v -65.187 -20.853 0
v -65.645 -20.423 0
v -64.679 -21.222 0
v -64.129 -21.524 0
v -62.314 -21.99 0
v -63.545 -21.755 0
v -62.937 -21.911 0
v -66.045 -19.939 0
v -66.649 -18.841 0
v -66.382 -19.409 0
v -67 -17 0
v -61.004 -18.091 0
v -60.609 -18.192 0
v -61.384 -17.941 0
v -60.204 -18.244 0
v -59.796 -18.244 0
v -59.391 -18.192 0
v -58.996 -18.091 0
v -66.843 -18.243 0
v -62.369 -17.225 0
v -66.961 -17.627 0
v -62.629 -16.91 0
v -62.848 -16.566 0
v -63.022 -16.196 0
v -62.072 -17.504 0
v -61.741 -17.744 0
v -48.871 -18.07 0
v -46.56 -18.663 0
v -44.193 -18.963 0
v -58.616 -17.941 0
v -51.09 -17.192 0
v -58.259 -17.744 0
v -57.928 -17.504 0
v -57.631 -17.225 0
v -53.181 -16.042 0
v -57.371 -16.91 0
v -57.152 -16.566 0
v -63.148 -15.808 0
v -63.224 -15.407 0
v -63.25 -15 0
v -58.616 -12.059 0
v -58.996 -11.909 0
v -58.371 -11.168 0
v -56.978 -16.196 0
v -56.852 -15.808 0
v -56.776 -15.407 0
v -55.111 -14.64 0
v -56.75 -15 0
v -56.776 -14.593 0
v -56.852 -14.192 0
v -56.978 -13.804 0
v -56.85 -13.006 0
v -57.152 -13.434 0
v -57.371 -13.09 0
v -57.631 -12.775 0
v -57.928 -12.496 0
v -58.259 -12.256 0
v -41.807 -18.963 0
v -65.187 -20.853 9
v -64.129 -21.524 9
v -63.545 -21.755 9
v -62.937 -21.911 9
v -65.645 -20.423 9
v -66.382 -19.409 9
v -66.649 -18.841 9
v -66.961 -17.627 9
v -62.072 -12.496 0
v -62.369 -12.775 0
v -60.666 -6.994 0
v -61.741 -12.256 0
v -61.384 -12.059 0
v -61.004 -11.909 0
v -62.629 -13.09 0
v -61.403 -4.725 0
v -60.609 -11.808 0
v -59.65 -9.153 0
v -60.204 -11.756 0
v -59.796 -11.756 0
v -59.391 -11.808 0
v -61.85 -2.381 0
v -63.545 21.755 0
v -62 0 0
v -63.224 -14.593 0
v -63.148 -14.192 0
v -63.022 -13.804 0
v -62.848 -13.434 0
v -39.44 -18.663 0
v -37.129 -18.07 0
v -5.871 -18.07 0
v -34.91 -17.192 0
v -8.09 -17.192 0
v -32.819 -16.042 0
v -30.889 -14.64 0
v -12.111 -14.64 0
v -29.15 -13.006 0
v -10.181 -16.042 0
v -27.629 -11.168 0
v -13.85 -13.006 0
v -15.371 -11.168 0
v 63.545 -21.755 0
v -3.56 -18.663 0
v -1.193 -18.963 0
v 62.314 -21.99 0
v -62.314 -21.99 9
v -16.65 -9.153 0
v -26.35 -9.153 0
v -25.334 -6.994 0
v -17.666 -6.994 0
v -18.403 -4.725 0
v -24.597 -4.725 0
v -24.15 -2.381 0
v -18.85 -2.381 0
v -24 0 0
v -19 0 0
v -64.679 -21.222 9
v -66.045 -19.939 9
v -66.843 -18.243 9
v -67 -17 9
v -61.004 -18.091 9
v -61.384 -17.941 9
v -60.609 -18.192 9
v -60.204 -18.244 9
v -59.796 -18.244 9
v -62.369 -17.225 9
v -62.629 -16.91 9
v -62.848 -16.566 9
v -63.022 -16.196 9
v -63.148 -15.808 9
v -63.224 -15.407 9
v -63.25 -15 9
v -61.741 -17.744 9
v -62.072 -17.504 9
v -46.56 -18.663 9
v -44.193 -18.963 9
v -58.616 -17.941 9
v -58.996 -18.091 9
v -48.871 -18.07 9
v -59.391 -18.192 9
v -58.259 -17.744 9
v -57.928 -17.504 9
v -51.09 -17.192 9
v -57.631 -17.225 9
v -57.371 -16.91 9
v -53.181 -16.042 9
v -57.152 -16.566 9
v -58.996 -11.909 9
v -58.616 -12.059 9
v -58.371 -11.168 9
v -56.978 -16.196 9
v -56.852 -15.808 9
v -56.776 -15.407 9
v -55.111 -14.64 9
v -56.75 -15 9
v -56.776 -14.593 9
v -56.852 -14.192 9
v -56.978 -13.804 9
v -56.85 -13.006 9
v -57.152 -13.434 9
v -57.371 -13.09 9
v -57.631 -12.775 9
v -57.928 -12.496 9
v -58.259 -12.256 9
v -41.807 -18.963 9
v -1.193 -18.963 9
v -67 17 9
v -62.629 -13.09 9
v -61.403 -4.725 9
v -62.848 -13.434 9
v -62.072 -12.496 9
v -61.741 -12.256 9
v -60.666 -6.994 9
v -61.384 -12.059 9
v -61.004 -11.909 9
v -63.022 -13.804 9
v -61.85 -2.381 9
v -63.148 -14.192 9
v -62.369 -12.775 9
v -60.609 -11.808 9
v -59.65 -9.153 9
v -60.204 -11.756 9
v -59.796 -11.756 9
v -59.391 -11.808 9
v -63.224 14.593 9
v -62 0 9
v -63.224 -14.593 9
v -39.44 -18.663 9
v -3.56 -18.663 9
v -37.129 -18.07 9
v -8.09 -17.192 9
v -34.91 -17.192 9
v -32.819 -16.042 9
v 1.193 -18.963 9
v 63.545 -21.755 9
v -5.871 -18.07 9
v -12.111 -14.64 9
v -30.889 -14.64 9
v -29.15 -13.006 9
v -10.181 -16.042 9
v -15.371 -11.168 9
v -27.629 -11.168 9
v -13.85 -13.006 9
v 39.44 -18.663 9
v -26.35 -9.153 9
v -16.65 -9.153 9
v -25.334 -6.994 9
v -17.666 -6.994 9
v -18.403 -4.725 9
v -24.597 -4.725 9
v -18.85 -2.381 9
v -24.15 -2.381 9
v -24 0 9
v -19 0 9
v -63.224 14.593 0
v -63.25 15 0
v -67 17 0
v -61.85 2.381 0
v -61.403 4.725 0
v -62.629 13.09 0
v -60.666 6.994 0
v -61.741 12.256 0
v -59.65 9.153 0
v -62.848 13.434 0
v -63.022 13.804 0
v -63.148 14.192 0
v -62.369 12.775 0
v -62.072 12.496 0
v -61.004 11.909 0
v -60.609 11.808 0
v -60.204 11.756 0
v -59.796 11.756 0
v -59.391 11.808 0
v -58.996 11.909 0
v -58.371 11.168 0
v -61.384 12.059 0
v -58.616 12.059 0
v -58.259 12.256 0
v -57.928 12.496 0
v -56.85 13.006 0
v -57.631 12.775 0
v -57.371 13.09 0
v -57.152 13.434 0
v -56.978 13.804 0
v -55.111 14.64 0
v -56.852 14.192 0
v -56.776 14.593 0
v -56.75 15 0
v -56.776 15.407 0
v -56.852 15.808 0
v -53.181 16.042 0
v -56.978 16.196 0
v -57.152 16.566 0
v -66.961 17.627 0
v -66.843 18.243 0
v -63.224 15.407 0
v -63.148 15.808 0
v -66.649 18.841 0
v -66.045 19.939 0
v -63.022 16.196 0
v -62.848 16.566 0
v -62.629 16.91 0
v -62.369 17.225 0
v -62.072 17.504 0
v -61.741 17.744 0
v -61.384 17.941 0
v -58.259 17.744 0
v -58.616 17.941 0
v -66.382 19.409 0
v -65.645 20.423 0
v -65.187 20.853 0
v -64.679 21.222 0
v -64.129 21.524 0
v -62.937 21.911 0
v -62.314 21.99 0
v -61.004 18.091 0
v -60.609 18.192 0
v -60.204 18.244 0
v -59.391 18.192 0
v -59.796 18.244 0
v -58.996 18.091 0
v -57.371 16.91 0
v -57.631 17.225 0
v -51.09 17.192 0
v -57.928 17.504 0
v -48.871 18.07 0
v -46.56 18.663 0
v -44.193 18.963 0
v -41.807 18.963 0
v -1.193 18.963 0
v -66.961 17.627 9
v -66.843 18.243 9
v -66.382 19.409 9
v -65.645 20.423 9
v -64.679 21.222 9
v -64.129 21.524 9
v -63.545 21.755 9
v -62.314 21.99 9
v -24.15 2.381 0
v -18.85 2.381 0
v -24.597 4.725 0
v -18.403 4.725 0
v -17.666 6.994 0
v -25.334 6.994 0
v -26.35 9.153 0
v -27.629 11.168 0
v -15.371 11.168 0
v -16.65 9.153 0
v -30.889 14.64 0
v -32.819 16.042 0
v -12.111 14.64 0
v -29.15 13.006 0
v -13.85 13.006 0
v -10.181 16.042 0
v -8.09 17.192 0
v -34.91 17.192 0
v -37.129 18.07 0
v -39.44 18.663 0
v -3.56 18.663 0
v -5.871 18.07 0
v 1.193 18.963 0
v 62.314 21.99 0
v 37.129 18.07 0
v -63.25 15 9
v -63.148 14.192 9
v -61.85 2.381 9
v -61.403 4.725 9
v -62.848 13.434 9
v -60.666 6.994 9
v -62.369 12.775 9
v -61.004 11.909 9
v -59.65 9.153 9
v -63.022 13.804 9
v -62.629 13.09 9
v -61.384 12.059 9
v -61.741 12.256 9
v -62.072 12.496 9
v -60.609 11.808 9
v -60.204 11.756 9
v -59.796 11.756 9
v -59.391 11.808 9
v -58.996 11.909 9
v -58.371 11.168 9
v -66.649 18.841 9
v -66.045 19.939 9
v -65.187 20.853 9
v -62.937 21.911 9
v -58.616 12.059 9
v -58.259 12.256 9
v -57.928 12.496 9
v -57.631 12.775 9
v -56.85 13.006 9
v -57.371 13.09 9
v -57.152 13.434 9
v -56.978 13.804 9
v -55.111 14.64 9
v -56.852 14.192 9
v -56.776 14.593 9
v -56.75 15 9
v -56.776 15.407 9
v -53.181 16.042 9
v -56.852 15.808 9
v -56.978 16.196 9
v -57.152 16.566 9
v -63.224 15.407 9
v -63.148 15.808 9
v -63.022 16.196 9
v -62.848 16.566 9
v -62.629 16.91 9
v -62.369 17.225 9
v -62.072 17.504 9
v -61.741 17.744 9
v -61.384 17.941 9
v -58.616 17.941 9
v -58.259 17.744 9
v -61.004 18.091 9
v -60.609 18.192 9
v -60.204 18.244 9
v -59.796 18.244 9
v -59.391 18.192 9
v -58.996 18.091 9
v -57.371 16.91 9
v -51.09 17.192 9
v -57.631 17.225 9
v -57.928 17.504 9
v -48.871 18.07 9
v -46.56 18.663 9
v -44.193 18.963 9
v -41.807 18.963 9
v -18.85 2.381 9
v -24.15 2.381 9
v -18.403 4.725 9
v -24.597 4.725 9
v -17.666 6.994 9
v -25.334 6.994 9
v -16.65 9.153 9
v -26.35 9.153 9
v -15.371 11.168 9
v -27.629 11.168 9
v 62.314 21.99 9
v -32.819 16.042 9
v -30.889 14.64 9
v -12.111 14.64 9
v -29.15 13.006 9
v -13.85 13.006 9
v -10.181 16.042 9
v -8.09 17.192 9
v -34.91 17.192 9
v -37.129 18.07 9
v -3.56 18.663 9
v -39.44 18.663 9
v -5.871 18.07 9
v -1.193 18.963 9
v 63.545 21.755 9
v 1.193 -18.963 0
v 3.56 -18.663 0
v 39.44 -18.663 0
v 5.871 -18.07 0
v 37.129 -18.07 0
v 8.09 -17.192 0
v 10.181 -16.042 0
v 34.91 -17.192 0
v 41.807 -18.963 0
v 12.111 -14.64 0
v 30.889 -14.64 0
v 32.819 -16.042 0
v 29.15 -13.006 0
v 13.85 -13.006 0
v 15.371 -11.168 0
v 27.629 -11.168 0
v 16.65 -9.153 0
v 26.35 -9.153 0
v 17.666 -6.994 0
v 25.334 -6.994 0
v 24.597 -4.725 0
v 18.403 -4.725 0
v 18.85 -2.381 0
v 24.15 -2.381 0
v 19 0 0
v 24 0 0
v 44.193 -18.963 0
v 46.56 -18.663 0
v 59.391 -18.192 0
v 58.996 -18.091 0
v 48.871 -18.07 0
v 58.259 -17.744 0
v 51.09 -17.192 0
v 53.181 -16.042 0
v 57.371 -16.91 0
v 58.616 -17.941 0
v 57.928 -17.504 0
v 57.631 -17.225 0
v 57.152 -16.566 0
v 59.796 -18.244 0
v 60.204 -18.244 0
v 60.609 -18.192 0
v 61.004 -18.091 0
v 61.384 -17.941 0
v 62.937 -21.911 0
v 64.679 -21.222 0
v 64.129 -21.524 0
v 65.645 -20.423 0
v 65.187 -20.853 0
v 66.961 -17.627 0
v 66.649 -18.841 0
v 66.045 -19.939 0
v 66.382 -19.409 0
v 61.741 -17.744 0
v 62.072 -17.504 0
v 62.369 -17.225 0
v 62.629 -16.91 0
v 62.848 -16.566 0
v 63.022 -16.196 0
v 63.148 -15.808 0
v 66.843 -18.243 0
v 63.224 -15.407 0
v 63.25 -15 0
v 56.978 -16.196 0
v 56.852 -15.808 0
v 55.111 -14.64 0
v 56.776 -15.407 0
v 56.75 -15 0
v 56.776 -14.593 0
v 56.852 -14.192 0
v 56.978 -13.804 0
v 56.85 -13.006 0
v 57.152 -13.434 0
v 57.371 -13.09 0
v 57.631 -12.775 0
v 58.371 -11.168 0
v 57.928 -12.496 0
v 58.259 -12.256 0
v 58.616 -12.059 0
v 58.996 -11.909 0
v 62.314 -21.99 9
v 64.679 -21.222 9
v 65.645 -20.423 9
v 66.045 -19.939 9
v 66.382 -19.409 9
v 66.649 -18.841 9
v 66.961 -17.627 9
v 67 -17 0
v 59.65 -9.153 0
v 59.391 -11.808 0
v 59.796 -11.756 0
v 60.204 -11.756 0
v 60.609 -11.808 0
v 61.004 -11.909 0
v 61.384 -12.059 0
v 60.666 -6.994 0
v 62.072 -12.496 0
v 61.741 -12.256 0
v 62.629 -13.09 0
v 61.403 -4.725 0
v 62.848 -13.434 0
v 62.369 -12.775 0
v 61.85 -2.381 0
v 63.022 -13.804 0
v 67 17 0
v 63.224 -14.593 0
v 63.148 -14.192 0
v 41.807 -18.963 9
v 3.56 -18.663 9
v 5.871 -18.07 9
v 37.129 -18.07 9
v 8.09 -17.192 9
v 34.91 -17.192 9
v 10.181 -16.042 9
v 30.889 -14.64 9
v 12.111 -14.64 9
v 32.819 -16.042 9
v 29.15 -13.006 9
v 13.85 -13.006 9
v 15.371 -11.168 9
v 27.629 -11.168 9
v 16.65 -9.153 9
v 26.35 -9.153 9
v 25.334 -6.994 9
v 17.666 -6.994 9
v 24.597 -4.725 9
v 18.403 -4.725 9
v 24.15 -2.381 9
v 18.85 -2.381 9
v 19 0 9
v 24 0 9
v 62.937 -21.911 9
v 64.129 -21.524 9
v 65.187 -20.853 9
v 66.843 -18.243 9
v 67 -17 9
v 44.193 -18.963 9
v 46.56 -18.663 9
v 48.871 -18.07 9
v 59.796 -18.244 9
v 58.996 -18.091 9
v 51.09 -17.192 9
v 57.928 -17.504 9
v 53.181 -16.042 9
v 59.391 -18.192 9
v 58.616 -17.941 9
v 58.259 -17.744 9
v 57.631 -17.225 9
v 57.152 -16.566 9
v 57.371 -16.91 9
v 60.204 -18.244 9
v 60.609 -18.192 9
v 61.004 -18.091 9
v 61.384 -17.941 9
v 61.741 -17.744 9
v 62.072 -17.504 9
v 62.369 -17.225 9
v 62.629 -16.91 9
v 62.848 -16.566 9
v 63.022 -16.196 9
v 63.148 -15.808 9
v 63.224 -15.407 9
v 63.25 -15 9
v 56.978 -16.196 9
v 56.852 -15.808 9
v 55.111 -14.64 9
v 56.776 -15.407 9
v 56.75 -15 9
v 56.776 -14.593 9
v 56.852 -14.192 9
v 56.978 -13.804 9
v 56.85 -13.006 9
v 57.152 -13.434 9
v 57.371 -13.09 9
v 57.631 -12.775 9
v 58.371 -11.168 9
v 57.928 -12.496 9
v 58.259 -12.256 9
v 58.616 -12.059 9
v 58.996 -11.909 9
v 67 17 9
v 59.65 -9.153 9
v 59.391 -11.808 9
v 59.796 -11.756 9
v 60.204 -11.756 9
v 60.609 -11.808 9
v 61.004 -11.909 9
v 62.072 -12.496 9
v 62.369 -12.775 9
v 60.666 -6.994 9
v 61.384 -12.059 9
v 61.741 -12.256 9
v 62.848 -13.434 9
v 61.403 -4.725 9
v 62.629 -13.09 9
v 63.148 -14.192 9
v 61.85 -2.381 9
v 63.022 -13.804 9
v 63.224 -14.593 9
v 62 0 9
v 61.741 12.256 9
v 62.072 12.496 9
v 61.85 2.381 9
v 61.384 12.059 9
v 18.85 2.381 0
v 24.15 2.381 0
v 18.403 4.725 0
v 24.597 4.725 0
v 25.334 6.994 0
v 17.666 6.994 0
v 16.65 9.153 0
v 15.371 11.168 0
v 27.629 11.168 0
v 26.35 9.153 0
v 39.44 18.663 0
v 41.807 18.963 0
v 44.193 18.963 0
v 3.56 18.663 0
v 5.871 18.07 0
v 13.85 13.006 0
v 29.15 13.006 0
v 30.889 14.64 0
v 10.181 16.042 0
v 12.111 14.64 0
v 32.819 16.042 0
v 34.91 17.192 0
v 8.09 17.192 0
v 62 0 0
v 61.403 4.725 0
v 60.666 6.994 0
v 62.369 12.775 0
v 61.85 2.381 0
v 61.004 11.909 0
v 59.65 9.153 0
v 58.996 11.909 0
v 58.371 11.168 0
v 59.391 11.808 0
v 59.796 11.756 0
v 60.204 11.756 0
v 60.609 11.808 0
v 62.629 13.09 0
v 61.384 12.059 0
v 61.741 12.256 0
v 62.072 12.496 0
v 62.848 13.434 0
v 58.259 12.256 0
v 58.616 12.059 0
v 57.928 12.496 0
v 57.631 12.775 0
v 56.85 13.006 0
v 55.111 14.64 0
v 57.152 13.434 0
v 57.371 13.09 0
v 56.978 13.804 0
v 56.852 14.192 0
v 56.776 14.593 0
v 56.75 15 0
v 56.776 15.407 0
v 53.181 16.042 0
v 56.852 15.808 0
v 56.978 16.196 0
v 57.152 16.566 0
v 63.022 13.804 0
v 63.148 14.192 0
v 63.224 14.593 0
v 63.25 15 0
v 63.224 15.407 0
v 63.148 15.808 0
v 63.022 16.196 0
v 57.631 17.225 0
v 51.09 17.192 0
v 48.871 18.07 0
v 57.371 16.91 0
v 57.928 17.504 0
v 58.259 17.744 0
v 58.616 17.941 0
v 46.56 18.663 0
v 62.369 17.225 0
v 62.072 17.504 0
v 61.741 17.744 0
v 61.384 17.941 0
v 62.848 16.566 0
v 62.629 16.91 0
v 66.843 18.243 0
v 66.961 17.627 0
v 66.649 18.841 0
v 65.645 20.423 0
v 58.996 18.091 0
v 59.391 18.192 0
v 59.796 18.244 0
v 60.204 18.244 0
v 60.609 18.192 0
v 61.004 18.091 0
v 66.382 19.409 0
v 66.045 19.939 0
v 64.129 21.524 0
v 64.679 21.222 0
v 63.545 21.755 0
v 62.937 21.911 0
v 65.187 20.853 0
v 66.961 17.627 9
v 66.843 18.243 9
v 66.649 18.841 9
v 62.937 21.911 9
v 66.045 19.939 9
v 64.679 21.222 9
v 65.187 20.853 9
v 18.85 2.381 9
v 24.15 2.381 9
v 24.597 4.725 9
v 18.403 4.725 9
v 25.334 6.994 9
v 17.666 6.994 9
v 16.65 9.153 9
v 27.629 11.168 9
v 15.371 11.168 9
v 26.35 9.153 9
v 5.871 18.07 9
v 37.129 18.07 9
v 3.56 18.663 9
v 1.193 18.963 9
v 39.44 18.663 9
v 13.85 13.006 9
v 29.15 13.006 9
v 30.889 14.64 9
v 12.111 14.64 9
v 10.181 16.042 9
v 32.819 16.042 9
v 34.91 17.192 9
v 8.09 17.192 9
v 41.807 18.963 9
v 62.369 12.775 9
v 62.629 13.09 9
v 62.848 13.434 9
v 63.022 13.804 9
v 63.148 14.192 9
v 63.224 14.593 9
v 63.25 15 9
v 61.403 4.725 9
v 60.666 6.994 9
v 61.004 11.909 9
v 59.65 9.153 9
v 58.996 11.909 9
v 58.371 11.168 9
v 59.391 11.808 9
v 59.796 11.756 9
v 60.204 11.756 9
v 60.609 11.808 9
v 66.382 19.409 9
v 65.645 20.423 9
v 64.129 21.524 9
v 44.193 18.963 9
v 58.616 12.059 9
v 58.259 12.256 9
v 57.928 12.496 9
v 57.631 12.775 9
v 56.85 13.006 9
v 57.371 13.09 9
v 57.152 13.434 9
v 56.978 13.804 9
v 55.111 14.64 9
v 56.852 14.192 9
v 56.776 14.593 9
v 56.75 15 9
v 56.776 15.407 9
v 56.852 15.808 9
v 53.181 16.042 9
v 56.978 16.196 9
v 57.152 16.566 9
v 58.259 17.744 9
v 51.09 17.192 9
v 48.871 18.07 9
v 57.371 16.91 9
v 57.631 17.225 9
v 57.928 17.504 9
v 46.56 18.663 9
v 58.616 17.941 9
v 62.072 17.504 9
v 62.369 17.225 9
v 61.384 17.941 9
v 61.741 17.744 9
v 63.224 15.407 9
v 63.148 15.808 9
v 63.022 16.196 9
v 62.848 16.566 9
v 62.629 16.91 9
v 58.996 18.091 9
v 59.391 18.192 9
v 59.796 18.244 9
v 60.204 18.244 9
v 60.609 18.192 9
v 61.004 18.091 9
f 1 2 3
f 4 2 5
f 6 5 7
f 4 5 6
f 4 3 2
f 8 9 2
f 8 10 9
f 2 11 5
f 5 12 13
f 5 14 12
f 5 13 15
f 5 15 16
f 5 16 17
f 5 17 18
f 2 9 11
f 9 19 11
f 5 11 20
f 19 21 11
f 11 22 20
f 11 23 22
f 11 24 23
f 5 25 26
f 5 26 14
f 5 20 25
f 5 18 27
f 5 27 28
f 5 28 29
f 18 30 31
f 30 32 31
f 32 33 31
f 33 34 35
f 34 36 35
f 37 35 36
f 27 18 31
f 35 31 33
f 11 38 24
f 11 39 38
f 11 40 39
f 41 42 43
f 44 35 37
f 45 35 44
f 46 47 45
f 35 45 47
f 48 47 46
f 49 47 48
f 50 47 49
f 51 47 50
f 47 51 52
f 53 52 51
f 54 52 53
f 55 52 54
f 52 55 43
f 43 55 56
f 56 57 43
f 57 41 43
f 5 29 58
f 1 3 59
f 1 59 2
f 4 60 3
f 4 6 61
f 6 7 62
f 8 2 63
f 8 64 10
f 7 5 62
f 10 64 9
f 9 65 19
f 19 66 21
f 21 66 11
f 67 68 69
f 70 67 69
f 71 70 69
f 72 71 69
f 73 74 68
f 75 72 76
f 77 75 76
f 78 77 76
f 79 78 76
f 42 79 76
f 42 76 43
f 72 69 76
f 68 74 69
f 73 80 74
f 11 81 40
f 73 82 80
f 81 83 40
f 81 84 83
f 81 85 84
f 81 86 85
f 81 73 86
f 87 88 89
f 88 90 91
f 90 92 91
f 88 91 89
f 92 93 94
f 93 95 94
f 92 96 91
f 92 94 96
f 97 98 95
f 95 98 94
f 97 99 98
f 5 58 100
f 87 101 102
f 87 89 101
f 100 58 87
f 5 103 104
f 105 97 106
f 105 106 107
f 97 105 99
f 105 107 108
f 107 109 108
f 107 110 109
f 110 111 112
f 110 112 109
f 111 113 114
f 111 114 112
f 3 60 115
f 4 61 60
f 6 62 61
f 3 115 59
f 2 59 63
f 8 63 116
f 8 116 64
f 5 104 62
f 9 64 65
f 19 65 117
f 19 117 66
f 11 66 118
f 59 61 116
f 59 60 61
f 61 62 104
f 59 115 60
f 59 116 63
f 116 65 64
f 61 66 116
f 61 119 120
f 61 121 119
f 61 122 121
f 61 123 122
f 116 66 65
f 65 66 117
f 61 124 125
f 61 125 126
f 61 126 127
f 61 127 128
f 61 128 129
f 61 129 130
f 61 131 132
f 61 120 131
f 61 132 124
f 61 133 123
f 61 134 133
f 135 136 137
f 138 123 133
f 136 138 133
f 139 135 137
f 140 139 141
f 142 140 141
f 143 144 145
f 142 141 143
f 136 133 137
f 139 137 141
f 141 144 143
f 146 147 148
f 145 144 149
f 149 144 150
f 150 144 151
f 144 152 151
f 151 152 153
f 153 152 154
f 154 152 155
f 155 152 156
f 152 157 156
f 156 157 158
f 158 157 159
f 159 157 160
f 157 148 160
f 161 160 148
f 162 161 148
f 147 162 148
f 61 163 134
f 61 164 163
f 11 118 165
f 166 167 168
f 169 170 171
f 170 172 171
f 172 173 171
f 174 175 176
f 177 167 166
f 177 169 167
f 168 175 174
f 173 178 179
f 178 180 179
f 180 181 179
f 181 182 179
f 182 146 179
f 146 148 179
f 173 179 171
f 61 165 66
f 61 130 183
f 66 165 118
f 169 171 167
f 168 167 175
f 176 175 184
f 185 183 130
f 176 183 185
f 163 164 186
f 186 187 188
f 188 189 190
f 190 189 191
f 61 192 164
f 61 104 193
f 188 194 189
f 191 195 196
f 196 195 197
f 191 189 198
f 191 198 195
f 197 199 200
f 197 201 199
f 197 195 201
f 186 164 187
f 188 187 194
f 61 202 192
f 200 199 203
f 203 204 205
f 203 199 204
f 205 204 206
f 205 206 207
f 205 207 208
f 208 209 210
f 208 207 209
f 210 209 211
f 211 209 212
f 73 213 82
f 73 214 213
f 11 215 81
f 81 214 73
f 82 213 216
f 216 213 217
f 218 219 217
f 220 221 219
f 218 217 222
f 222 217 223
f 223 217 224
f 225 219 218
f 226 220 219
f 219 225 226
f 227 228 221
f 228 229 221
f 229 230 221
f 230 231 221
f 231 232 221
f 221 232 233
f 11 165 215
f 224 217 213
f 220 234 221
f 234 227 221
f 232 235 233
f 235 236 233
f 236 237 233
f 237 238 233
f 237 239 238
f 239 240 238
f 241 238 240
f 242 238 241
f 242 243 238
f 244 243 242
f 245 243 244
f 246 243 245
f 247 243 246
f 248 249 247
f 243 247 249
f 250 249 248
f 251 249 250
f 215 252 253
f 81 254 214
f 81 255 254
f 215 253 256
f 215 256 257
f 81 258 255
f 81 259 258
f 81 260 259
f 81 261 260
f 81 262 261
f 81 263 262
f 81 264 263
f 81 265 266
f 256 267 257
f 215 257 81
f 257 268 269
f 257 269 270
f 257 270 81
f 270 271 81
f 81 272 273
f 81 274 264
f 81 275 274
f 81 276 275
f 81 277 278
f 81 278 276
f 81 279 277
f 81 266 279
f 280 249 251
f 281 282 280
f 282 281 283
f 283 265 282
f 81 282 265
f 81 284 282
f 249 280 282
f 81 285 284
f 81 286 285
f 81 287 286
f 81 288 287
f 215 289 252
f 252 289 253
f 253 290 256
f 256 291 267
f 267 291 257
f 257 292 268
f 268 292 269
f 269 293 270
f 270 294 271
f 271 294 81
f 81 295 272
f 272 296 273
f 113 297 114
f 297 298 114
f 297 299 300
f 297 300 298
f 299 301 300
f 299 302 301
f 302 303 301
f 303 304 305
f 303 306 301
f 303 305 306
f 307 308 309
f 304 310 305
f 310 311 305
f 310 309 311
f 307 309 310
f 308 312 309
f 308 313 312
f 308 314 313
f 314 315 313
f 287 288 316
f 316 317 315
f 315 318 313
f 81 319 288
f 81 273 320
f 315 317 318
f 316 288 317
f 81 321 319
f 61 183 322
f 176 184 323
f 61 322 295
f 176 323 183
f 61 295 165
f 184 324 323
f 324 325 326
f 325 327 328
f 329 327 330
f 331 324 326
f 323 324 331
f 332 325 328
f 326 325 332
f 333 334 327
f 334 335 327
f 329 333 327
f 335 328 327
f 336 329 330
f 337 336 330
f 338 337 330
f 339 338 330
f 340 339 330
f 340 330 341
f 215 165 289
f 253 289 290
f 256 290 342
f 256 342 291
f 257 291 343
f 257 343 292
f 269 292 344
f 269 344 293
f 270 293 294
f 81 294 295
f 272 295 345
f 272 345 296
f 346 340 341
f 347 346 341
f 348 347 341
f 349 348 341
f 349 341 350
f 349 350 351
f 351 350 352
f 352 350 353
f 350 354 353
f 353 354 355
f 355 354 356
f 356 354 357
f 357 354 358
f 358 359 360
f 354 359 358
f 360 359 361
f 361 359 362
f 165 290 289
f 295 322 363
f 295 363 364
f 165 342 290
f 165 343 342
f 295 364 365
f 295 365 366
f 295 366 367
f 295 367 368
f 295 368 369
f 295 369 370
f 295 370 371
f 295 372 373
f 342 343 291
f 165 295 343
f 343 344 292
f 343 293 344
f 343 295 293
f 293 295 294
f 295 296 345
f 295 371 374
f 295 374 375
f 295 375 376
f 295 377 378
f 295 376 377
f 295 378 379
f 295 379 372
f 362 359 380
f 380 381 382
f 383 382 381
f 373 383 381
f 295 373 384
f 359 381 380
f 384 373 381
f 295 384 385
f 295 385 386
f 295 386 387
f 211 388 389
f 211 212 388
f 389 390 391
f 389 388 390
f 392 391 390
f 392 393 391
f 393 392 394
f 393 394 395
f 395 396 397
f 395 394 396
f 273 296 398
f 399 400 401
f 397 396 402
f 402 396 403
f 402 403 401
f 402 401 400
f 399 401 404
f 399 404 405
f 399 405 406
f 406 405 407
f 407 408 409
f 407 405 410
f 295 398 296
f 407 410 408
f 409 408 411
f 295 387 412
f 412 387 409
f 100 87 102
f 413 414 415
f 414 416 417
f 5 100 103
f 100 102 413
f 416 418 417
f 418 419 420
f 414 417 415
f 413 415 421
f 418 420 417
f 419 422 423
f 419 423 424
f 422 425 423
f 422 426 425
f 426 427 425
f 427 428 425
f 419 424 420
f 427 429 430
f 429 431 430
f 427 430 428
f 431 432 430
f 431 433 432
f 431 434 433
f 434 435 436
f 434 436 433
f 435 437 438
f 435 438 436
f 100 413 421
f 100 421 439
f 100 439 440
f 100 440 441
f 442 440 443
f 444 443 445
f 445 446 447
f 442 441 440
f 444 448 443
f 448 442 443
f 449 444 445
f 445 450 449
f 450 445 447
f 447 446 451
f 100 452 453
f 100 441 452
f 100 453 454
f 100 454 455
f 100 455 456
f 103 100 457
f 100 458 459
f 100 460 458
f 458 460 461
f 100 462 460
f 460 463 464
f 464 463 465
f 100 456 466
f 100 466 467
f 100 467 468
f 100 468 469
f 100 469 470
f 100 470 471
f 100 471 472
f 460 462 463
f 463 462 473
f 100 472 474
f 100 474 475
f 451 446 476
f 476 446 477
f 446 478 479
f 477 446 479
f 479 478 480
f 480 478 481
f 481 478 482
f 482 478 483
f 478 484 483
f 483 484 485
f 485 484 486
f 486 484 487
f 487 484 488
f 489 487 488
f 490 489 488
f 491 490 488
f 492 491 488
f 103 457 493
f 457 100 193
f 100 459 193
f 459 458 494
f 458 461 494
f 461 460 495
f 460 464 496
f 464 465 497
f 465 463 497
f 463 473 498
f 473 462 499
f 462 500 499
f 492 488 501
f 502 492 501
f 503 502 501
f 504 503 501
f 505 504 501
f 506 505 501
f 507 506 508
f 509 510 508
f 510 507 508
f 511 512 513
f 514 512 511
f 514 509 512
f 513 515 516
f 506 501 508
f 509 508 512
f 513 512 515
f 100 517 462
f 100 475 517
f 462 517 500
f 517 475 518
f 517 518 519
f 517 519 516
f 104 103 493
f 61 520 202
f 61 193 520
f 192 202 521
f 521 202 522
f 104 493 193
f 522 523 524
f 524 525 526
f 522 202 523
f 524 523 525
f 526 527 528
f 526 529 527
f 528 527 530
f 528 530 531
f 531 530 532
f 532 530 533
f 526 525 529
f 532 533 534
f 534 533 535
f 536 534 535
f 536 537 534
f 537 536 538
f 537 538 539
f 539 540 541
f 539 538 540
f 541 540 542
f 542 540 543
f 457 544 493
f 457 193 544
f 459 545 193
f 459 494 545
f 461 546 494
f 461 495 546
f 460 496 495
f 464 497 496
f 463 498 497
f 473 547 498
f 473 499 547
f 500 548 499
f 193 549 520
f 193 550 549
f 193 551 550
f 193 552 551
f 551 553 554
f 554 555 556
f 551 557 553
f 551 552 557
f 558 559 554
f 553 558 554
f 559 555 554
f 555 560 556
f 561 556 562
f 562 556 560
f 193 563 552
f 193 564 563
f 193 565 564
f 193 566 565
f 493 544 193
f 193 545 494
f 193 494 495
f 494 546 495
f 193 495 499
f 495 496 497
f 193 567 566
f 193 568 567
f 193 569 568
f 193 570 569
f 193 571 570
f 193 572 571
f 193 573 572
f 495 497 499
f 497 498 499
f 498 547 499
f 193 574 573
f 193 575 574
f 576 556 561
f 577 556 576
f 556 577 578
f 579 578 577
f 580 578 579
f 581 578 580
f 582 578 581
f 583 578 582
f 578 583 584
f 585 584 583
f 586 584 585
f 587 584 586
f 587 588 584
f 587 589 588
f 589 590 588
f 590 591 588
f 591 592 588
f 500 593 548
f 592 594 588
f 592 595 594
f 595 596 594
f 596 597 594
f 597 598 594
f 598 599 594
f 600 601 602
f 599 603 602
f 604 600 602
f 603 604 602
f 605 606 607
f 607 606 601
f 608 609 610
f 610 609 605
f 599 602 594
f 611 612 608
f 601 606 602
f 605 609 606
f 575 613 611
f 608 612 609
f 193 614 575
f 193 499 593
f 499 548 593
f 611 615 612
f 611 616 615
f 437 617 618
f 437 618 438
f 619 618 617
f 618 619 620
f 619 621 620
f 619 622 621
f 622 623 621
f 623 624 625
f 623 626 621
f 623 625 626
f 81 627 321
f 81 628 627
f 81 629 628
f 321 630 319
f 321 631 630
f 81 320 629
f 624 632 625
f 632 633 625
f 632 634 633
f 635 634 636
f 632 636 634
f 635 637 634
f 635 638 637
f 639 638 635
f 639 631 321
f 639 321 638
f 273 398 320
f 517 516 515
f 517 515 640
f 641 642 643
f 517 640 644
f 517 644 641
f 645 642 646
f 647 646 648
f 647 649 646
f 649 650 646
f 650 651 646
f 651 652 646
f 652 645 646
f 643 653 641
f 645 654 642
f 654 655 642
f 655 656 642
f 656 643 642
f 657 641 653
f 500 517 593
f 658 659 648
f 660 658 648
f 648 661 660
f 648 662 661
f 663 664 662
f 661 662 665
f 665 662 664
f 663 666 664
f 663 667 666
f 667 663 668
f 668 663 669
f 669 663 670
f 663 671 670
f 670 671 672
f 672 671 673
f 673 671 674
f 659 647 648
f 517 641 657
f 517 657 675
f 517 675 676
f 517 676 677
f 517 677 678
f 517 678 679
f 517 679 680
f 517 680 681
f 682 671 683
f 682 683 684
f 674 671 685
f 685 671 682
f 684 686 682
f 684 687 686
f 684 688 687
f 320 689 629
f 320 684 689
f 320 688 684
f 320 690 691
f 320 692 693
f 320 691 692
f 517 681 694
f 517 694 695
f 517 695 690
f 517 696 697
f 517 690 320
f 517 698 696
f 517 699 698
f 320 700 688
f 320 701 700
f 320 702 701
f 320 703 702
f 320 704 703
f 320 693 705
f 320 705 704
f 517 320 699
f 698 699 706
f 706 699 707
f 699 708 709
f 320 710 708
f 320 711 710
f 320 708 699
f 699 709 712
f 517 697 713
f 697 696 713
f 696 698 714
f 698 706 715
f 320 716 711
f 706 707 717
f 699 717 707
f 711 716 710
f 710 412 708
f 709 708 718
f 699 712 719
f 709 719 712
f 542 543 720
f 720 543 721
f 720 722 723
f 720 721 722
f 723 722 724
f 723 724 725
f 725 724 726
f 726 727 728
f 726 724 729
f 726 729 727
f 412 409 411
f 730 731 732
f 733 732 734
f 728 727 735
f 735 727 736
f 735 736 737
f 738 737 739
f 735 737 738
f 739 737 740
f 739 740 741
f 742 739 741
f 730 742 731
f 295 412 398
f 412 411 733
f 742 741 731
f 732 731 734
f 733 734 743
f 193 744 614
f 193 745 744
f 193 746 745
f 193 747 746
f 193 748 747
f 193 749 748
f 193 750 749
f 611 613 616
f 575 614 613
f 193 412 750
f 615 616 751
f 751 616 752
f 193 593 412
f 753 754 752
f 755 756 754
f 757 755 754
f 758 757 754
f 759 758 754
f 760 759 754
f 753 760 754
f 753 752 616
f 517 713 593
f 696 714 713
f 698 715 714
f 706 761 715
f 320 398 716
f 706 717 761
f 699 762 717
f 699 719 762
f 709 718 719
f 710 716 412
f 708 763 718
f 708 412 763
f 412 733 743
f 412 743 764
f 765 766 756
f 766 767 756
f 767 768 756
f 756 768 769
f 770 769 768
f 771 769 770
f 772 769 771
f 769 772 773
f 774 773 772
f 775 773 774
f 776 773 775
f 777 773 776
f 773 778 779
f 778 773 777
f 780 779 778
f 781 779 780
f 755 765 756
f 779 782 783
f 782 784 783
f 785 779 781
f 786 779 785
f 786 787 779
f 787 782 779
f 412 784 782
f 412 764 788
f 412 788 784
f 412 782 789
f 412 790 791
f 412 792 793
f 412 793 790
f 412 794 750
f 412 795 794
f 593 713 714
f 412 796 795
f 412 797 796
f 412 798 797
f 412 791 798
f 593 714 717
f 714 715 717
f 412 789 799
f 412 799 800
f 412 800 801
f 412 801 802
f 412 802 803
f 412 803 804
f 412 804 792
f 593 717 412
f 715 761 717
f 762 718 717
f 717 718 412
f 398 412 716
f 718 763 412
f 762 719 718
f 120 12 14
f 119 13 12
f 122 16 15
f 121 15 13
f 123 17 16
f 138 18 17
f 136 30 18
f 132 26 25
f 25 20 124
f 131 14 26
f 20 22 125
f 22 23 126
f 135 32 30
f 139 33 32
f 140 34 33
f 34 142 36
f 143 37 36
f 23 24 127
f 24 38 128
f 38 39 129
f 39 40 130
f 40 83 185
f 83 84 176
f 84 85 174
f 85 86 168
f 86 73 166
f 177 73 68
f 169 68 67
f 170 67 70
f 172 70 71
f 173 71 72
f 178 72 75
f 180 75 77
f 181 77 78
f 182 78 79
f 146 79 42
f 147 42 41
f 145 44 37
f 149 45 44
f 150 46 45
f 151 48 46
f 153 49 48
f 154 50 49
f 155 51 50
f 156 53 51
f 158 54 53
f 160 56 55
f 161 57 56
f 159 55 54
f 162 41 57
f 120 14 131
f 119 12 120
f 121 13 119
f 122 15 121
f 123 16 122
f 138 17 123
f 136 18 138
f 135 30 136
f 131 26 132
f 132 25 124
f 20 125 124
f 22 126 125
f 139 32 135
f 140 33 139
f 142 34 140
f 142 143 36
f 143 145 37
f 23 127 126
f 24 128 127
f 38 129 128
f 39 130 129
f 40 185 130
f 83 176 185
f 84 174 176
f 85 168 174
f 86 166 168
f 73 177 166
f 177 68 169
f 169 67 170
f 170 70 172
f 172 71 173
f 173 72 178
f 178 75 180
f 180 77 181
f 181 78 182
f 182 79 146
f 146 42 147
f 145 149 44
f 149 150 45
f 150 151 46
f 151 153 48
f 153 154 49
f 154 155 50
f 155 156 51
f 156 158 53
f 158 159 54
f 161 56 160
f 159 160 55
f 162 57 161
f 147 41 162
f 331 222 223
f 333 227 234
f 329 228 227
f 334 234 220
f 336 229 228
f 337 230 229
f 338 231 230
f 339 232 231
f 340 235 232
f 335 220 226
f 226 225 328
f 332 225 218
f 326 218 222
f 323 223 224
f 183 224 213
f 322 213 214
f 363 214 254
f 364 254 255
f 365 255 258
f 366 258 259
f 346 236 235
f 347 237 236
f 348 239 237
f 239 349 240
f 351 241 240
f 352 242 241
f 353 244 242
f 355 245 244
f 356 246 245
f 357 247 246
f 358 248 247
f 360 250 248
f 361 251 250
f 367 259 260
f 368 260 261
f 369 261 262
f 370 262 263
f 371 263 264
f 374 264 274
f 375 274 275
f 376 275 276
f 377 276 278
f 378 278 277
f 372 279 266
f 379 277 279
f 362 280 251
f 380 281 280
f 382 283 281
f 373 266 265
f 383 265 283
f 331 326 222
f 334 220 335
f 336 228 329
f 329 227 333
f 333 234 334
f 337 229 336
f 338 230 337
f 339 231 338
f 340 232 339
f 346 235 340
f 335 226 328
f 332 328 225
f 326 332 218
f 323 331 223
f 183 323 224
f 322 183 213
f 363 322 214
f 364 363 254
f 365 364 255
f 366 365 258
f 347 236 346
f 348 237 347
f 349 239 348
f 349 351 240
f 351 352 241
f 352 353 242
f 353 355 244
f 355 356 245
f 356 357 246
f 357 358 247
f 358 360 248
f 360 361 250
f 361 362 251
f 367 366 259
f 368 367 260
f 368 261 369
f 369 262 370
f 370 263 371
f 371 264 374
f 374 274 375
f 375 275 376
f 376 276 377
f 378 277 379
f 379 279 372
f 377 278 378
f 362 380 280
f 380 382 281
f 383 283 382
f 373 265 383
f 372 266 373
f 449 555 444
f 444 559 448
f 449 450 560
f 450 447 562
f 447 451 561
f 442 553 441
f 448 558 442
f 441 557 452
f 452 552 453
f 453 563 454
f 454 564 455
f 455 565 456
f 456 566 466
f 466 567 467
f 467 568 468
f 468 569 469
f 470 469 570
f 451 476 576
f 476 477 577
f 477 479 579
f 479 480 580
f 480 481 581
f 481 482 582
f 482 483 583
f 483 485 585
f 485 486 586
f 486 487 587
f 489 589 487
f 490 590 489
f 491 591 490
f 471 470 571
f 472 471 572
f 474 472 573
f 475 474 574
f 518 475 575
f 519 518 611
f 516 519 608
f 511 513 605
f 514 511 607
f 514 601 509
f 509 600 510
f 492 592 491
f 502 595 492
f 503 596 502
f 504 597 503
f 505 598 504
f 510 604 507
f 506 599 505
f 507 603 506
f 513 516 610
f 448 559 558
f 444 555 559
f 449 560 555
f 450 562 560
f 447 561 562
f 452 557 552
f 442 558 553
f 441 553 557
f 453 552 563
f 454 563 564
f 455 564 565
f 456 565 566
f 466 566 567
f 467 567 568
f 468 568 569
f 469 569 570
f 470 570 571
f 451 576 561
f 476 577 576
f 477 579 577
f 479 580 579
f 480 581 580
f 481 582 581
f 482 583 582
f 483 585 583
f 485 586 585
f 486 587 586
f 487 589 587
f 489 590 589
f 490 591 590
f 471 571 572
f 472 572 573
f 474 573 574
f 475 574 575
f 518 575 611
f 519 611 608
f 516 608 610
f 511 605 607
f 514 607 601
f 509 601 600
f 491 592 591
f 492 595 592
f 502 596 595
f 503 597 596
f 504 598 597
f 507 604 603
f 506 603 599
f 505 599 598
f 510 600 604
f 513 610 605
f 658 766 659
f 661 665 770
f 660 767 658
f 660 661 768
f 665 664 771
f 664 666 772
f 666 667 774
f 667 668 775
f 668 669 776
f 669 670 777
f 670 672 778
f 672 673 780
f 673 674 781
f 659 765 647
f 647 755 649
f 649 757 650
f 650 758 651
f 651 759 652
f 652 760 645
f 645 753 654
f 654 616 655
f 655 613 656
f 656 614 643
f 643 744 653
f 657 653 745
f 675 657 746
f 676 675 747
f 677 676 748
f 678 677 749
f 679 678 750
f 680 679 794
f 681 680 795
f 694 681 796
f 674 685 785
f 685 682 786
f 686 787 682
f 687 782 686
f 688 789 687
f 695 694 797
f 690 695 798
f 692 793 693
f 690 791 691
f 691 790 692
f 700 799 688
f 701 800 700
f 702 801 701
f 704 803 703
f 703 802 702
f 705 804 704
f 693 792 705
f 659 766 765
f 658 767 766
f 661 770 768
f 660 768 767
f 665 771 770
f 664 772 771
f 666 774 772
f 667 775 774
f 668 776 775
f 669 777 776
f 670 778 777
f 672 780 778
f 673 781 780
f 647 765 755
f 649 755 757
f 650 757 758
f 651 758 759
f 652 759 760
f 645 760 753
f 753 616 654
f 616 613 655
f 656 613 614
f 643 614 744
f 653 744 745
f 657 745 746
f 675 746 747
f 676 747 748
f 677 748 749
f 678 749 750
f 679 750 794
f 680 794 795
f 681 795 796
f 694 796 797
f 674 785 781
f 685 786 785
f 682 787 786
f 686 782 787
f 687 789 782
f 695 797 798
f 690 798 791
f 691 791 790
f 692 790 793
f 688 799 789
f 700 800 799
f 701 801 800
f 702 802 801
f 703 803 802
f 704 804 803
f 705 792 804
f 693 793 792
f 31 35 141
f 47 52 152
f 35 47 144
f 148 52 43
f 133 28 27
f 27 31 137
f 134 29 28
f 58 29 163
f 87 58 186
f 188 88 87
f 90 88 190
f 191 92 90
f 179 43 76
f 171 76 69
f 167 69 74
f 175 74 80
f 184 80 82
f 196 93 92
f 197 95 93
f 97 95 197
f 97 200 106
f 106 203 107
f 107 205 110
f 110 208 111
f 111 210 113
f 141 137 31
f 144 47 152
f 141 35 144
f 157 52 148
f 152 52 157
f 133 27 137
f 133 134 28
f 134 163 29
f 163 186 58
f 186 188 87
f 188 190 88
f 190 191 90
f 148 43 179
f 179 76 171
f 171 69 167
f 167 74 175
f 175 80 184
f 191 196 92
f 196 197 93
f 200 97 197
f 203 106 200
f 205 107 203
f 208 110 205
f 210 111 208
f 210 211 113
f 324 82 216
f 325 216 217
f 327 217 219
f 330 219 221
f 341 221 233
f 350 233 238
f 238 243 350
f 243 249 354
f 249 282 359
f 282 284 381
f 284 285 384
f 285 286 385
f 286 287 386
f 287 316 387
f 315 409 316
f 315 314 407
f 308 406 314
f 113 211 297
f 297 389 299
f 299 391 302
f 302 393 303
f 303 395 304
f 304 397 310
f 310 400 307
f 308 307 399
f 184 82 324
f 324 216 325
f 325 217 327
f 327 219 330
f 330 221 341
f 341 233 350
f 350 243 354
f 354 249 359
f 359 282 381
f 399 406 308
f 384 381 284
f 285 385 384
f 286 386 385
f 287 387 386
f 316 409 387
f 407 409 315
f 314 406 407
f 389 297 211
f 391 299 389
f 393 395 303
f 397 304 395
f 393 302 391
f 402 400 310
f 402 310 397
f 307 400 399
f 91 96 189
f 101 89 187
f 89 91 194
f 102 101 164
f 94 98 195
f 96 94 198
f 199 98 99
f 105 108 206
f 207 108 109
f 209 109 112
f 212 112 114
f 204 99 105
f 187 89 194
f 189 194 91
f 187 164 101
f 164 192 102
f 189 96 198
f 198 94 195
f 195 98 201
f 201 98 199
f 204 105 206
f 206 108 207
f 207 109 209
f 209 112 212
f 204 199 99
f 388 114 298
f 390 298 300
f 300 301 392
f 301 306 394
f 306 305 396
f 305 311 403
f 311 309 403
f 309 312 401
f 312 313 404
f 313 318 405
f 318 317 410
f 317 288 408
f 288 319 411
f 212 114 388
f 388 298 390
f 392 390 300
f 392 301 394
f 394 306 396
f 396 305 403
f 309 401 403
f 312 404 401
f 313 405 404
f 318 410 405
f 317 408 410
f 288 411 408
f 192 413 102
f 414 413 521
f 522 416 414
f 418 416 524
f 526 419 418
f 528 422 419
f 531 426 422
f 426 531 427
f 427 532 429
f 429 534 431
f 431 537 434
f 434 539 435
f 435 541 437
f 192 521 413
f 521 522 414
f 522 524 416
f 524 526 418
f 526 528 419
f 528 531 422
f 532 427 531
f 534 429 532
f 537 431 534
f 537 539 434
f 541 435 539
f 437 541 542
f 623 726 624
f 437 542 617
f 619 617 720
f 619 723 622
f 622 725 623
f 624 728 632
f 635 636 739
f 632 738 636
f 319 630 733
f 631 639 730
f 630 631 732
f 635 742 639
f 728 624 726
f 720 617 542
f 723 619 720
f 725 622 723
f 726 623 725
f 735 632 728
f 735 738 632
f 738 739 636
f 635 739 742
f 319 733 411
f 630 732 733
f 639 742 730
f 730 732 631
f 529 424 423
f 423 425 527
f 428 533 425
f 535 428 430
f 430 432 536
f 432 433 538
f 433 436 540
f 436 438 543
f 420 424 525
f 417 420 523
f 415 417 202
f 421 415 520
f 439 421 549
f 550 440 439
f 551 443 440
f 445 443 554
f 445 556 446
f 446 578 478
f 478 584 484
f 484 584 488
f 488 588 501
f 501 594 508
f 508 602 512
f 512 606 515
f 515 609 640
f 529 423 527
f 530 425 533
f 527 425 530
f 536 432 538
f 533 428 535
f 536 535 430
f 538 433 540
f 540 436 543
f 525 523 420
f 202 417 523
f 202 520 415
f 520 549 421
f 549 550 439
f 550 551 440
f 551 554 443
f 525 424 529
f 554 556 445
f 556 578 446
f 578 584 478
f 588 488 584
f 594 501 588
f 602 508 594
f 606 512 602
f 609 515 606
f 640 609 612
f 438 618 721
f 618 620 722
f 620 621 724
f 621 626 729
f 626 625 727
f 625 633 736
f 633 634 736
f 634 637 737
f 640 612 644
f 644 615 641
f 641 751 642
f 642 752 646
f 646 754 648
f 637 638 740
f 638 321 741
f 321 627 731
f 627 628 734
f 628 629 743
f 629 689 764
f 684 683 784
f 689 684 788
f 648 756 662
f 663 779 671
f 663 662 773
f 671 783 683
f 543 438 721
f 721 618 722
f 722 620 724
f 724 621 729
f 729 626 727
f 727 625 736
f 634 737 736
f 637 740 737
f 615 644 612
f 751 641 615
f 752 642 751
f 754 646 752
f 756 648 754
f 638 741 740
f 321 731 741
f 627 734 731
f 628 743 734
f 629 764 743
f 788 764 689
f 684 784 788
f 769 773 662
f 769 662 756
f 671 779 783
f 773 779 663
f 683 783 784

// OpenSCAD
$fn = 50;

difference() {
	union() {
		hull() {
			translate(v = [-62.0, 17.0, 0]) {
				cylinder(h = 9, r = 5);
			}
			translate(v = [62.0, 17.0, 0]) {
				cylinder(h = 9, r = 5);
			}
			translate(v = [-62.0, -17.0, 0]) {
				cylinder(h = 9, r = 5);
			}
			translate(v = [62.0, -17.0, 0]) {
				cylinder(h = 9, r = 5);
			}
		}
	}
	union() {
		translate(v = [-60.0, -15.0, -100.0]) {
			cylinder(h = 200, r = 3.25);
		}
		translate(v = [-60.0, 15.0, -100.0]) {
			cylinder(h = 200, r = 3.25);
		}
		translate(v = [60.0, -15.0, -100.0]) {
			cylinder(h = 200, r = 3.25);
		}
		translate(v = [60.0, 15.0, -100.0]) {
			cylinder(h = 200, r = 3.25);
		}
		translate(v = [-60.0, -15.0, -100.0]) {
			cylinder(h = 200, r = 1.8);
		}
		translate(v = [-60.0, 15.0, -100.0]) {
			cylinder(h = 200, r = 1.8);
		}
		translate(v = [60.0, -15.0, -100.0]) {
			cylinder(h = 200, r = 1.8);
		}
		translate(v = [60.0, 15.0, -100.0]) {
			cylinder(h = 200, r = 1.8);
		}
		translate(v = [-43.0, 0, 0.0]) {
			cylinder(h = 9, r = 19.0);
		}
		cylinder(h = 9, r = 19.0);
		translate(v = [43.0, 0, 0.0]) {
			cylinder(h = 9, r = 19.0);
		}
	}
}
